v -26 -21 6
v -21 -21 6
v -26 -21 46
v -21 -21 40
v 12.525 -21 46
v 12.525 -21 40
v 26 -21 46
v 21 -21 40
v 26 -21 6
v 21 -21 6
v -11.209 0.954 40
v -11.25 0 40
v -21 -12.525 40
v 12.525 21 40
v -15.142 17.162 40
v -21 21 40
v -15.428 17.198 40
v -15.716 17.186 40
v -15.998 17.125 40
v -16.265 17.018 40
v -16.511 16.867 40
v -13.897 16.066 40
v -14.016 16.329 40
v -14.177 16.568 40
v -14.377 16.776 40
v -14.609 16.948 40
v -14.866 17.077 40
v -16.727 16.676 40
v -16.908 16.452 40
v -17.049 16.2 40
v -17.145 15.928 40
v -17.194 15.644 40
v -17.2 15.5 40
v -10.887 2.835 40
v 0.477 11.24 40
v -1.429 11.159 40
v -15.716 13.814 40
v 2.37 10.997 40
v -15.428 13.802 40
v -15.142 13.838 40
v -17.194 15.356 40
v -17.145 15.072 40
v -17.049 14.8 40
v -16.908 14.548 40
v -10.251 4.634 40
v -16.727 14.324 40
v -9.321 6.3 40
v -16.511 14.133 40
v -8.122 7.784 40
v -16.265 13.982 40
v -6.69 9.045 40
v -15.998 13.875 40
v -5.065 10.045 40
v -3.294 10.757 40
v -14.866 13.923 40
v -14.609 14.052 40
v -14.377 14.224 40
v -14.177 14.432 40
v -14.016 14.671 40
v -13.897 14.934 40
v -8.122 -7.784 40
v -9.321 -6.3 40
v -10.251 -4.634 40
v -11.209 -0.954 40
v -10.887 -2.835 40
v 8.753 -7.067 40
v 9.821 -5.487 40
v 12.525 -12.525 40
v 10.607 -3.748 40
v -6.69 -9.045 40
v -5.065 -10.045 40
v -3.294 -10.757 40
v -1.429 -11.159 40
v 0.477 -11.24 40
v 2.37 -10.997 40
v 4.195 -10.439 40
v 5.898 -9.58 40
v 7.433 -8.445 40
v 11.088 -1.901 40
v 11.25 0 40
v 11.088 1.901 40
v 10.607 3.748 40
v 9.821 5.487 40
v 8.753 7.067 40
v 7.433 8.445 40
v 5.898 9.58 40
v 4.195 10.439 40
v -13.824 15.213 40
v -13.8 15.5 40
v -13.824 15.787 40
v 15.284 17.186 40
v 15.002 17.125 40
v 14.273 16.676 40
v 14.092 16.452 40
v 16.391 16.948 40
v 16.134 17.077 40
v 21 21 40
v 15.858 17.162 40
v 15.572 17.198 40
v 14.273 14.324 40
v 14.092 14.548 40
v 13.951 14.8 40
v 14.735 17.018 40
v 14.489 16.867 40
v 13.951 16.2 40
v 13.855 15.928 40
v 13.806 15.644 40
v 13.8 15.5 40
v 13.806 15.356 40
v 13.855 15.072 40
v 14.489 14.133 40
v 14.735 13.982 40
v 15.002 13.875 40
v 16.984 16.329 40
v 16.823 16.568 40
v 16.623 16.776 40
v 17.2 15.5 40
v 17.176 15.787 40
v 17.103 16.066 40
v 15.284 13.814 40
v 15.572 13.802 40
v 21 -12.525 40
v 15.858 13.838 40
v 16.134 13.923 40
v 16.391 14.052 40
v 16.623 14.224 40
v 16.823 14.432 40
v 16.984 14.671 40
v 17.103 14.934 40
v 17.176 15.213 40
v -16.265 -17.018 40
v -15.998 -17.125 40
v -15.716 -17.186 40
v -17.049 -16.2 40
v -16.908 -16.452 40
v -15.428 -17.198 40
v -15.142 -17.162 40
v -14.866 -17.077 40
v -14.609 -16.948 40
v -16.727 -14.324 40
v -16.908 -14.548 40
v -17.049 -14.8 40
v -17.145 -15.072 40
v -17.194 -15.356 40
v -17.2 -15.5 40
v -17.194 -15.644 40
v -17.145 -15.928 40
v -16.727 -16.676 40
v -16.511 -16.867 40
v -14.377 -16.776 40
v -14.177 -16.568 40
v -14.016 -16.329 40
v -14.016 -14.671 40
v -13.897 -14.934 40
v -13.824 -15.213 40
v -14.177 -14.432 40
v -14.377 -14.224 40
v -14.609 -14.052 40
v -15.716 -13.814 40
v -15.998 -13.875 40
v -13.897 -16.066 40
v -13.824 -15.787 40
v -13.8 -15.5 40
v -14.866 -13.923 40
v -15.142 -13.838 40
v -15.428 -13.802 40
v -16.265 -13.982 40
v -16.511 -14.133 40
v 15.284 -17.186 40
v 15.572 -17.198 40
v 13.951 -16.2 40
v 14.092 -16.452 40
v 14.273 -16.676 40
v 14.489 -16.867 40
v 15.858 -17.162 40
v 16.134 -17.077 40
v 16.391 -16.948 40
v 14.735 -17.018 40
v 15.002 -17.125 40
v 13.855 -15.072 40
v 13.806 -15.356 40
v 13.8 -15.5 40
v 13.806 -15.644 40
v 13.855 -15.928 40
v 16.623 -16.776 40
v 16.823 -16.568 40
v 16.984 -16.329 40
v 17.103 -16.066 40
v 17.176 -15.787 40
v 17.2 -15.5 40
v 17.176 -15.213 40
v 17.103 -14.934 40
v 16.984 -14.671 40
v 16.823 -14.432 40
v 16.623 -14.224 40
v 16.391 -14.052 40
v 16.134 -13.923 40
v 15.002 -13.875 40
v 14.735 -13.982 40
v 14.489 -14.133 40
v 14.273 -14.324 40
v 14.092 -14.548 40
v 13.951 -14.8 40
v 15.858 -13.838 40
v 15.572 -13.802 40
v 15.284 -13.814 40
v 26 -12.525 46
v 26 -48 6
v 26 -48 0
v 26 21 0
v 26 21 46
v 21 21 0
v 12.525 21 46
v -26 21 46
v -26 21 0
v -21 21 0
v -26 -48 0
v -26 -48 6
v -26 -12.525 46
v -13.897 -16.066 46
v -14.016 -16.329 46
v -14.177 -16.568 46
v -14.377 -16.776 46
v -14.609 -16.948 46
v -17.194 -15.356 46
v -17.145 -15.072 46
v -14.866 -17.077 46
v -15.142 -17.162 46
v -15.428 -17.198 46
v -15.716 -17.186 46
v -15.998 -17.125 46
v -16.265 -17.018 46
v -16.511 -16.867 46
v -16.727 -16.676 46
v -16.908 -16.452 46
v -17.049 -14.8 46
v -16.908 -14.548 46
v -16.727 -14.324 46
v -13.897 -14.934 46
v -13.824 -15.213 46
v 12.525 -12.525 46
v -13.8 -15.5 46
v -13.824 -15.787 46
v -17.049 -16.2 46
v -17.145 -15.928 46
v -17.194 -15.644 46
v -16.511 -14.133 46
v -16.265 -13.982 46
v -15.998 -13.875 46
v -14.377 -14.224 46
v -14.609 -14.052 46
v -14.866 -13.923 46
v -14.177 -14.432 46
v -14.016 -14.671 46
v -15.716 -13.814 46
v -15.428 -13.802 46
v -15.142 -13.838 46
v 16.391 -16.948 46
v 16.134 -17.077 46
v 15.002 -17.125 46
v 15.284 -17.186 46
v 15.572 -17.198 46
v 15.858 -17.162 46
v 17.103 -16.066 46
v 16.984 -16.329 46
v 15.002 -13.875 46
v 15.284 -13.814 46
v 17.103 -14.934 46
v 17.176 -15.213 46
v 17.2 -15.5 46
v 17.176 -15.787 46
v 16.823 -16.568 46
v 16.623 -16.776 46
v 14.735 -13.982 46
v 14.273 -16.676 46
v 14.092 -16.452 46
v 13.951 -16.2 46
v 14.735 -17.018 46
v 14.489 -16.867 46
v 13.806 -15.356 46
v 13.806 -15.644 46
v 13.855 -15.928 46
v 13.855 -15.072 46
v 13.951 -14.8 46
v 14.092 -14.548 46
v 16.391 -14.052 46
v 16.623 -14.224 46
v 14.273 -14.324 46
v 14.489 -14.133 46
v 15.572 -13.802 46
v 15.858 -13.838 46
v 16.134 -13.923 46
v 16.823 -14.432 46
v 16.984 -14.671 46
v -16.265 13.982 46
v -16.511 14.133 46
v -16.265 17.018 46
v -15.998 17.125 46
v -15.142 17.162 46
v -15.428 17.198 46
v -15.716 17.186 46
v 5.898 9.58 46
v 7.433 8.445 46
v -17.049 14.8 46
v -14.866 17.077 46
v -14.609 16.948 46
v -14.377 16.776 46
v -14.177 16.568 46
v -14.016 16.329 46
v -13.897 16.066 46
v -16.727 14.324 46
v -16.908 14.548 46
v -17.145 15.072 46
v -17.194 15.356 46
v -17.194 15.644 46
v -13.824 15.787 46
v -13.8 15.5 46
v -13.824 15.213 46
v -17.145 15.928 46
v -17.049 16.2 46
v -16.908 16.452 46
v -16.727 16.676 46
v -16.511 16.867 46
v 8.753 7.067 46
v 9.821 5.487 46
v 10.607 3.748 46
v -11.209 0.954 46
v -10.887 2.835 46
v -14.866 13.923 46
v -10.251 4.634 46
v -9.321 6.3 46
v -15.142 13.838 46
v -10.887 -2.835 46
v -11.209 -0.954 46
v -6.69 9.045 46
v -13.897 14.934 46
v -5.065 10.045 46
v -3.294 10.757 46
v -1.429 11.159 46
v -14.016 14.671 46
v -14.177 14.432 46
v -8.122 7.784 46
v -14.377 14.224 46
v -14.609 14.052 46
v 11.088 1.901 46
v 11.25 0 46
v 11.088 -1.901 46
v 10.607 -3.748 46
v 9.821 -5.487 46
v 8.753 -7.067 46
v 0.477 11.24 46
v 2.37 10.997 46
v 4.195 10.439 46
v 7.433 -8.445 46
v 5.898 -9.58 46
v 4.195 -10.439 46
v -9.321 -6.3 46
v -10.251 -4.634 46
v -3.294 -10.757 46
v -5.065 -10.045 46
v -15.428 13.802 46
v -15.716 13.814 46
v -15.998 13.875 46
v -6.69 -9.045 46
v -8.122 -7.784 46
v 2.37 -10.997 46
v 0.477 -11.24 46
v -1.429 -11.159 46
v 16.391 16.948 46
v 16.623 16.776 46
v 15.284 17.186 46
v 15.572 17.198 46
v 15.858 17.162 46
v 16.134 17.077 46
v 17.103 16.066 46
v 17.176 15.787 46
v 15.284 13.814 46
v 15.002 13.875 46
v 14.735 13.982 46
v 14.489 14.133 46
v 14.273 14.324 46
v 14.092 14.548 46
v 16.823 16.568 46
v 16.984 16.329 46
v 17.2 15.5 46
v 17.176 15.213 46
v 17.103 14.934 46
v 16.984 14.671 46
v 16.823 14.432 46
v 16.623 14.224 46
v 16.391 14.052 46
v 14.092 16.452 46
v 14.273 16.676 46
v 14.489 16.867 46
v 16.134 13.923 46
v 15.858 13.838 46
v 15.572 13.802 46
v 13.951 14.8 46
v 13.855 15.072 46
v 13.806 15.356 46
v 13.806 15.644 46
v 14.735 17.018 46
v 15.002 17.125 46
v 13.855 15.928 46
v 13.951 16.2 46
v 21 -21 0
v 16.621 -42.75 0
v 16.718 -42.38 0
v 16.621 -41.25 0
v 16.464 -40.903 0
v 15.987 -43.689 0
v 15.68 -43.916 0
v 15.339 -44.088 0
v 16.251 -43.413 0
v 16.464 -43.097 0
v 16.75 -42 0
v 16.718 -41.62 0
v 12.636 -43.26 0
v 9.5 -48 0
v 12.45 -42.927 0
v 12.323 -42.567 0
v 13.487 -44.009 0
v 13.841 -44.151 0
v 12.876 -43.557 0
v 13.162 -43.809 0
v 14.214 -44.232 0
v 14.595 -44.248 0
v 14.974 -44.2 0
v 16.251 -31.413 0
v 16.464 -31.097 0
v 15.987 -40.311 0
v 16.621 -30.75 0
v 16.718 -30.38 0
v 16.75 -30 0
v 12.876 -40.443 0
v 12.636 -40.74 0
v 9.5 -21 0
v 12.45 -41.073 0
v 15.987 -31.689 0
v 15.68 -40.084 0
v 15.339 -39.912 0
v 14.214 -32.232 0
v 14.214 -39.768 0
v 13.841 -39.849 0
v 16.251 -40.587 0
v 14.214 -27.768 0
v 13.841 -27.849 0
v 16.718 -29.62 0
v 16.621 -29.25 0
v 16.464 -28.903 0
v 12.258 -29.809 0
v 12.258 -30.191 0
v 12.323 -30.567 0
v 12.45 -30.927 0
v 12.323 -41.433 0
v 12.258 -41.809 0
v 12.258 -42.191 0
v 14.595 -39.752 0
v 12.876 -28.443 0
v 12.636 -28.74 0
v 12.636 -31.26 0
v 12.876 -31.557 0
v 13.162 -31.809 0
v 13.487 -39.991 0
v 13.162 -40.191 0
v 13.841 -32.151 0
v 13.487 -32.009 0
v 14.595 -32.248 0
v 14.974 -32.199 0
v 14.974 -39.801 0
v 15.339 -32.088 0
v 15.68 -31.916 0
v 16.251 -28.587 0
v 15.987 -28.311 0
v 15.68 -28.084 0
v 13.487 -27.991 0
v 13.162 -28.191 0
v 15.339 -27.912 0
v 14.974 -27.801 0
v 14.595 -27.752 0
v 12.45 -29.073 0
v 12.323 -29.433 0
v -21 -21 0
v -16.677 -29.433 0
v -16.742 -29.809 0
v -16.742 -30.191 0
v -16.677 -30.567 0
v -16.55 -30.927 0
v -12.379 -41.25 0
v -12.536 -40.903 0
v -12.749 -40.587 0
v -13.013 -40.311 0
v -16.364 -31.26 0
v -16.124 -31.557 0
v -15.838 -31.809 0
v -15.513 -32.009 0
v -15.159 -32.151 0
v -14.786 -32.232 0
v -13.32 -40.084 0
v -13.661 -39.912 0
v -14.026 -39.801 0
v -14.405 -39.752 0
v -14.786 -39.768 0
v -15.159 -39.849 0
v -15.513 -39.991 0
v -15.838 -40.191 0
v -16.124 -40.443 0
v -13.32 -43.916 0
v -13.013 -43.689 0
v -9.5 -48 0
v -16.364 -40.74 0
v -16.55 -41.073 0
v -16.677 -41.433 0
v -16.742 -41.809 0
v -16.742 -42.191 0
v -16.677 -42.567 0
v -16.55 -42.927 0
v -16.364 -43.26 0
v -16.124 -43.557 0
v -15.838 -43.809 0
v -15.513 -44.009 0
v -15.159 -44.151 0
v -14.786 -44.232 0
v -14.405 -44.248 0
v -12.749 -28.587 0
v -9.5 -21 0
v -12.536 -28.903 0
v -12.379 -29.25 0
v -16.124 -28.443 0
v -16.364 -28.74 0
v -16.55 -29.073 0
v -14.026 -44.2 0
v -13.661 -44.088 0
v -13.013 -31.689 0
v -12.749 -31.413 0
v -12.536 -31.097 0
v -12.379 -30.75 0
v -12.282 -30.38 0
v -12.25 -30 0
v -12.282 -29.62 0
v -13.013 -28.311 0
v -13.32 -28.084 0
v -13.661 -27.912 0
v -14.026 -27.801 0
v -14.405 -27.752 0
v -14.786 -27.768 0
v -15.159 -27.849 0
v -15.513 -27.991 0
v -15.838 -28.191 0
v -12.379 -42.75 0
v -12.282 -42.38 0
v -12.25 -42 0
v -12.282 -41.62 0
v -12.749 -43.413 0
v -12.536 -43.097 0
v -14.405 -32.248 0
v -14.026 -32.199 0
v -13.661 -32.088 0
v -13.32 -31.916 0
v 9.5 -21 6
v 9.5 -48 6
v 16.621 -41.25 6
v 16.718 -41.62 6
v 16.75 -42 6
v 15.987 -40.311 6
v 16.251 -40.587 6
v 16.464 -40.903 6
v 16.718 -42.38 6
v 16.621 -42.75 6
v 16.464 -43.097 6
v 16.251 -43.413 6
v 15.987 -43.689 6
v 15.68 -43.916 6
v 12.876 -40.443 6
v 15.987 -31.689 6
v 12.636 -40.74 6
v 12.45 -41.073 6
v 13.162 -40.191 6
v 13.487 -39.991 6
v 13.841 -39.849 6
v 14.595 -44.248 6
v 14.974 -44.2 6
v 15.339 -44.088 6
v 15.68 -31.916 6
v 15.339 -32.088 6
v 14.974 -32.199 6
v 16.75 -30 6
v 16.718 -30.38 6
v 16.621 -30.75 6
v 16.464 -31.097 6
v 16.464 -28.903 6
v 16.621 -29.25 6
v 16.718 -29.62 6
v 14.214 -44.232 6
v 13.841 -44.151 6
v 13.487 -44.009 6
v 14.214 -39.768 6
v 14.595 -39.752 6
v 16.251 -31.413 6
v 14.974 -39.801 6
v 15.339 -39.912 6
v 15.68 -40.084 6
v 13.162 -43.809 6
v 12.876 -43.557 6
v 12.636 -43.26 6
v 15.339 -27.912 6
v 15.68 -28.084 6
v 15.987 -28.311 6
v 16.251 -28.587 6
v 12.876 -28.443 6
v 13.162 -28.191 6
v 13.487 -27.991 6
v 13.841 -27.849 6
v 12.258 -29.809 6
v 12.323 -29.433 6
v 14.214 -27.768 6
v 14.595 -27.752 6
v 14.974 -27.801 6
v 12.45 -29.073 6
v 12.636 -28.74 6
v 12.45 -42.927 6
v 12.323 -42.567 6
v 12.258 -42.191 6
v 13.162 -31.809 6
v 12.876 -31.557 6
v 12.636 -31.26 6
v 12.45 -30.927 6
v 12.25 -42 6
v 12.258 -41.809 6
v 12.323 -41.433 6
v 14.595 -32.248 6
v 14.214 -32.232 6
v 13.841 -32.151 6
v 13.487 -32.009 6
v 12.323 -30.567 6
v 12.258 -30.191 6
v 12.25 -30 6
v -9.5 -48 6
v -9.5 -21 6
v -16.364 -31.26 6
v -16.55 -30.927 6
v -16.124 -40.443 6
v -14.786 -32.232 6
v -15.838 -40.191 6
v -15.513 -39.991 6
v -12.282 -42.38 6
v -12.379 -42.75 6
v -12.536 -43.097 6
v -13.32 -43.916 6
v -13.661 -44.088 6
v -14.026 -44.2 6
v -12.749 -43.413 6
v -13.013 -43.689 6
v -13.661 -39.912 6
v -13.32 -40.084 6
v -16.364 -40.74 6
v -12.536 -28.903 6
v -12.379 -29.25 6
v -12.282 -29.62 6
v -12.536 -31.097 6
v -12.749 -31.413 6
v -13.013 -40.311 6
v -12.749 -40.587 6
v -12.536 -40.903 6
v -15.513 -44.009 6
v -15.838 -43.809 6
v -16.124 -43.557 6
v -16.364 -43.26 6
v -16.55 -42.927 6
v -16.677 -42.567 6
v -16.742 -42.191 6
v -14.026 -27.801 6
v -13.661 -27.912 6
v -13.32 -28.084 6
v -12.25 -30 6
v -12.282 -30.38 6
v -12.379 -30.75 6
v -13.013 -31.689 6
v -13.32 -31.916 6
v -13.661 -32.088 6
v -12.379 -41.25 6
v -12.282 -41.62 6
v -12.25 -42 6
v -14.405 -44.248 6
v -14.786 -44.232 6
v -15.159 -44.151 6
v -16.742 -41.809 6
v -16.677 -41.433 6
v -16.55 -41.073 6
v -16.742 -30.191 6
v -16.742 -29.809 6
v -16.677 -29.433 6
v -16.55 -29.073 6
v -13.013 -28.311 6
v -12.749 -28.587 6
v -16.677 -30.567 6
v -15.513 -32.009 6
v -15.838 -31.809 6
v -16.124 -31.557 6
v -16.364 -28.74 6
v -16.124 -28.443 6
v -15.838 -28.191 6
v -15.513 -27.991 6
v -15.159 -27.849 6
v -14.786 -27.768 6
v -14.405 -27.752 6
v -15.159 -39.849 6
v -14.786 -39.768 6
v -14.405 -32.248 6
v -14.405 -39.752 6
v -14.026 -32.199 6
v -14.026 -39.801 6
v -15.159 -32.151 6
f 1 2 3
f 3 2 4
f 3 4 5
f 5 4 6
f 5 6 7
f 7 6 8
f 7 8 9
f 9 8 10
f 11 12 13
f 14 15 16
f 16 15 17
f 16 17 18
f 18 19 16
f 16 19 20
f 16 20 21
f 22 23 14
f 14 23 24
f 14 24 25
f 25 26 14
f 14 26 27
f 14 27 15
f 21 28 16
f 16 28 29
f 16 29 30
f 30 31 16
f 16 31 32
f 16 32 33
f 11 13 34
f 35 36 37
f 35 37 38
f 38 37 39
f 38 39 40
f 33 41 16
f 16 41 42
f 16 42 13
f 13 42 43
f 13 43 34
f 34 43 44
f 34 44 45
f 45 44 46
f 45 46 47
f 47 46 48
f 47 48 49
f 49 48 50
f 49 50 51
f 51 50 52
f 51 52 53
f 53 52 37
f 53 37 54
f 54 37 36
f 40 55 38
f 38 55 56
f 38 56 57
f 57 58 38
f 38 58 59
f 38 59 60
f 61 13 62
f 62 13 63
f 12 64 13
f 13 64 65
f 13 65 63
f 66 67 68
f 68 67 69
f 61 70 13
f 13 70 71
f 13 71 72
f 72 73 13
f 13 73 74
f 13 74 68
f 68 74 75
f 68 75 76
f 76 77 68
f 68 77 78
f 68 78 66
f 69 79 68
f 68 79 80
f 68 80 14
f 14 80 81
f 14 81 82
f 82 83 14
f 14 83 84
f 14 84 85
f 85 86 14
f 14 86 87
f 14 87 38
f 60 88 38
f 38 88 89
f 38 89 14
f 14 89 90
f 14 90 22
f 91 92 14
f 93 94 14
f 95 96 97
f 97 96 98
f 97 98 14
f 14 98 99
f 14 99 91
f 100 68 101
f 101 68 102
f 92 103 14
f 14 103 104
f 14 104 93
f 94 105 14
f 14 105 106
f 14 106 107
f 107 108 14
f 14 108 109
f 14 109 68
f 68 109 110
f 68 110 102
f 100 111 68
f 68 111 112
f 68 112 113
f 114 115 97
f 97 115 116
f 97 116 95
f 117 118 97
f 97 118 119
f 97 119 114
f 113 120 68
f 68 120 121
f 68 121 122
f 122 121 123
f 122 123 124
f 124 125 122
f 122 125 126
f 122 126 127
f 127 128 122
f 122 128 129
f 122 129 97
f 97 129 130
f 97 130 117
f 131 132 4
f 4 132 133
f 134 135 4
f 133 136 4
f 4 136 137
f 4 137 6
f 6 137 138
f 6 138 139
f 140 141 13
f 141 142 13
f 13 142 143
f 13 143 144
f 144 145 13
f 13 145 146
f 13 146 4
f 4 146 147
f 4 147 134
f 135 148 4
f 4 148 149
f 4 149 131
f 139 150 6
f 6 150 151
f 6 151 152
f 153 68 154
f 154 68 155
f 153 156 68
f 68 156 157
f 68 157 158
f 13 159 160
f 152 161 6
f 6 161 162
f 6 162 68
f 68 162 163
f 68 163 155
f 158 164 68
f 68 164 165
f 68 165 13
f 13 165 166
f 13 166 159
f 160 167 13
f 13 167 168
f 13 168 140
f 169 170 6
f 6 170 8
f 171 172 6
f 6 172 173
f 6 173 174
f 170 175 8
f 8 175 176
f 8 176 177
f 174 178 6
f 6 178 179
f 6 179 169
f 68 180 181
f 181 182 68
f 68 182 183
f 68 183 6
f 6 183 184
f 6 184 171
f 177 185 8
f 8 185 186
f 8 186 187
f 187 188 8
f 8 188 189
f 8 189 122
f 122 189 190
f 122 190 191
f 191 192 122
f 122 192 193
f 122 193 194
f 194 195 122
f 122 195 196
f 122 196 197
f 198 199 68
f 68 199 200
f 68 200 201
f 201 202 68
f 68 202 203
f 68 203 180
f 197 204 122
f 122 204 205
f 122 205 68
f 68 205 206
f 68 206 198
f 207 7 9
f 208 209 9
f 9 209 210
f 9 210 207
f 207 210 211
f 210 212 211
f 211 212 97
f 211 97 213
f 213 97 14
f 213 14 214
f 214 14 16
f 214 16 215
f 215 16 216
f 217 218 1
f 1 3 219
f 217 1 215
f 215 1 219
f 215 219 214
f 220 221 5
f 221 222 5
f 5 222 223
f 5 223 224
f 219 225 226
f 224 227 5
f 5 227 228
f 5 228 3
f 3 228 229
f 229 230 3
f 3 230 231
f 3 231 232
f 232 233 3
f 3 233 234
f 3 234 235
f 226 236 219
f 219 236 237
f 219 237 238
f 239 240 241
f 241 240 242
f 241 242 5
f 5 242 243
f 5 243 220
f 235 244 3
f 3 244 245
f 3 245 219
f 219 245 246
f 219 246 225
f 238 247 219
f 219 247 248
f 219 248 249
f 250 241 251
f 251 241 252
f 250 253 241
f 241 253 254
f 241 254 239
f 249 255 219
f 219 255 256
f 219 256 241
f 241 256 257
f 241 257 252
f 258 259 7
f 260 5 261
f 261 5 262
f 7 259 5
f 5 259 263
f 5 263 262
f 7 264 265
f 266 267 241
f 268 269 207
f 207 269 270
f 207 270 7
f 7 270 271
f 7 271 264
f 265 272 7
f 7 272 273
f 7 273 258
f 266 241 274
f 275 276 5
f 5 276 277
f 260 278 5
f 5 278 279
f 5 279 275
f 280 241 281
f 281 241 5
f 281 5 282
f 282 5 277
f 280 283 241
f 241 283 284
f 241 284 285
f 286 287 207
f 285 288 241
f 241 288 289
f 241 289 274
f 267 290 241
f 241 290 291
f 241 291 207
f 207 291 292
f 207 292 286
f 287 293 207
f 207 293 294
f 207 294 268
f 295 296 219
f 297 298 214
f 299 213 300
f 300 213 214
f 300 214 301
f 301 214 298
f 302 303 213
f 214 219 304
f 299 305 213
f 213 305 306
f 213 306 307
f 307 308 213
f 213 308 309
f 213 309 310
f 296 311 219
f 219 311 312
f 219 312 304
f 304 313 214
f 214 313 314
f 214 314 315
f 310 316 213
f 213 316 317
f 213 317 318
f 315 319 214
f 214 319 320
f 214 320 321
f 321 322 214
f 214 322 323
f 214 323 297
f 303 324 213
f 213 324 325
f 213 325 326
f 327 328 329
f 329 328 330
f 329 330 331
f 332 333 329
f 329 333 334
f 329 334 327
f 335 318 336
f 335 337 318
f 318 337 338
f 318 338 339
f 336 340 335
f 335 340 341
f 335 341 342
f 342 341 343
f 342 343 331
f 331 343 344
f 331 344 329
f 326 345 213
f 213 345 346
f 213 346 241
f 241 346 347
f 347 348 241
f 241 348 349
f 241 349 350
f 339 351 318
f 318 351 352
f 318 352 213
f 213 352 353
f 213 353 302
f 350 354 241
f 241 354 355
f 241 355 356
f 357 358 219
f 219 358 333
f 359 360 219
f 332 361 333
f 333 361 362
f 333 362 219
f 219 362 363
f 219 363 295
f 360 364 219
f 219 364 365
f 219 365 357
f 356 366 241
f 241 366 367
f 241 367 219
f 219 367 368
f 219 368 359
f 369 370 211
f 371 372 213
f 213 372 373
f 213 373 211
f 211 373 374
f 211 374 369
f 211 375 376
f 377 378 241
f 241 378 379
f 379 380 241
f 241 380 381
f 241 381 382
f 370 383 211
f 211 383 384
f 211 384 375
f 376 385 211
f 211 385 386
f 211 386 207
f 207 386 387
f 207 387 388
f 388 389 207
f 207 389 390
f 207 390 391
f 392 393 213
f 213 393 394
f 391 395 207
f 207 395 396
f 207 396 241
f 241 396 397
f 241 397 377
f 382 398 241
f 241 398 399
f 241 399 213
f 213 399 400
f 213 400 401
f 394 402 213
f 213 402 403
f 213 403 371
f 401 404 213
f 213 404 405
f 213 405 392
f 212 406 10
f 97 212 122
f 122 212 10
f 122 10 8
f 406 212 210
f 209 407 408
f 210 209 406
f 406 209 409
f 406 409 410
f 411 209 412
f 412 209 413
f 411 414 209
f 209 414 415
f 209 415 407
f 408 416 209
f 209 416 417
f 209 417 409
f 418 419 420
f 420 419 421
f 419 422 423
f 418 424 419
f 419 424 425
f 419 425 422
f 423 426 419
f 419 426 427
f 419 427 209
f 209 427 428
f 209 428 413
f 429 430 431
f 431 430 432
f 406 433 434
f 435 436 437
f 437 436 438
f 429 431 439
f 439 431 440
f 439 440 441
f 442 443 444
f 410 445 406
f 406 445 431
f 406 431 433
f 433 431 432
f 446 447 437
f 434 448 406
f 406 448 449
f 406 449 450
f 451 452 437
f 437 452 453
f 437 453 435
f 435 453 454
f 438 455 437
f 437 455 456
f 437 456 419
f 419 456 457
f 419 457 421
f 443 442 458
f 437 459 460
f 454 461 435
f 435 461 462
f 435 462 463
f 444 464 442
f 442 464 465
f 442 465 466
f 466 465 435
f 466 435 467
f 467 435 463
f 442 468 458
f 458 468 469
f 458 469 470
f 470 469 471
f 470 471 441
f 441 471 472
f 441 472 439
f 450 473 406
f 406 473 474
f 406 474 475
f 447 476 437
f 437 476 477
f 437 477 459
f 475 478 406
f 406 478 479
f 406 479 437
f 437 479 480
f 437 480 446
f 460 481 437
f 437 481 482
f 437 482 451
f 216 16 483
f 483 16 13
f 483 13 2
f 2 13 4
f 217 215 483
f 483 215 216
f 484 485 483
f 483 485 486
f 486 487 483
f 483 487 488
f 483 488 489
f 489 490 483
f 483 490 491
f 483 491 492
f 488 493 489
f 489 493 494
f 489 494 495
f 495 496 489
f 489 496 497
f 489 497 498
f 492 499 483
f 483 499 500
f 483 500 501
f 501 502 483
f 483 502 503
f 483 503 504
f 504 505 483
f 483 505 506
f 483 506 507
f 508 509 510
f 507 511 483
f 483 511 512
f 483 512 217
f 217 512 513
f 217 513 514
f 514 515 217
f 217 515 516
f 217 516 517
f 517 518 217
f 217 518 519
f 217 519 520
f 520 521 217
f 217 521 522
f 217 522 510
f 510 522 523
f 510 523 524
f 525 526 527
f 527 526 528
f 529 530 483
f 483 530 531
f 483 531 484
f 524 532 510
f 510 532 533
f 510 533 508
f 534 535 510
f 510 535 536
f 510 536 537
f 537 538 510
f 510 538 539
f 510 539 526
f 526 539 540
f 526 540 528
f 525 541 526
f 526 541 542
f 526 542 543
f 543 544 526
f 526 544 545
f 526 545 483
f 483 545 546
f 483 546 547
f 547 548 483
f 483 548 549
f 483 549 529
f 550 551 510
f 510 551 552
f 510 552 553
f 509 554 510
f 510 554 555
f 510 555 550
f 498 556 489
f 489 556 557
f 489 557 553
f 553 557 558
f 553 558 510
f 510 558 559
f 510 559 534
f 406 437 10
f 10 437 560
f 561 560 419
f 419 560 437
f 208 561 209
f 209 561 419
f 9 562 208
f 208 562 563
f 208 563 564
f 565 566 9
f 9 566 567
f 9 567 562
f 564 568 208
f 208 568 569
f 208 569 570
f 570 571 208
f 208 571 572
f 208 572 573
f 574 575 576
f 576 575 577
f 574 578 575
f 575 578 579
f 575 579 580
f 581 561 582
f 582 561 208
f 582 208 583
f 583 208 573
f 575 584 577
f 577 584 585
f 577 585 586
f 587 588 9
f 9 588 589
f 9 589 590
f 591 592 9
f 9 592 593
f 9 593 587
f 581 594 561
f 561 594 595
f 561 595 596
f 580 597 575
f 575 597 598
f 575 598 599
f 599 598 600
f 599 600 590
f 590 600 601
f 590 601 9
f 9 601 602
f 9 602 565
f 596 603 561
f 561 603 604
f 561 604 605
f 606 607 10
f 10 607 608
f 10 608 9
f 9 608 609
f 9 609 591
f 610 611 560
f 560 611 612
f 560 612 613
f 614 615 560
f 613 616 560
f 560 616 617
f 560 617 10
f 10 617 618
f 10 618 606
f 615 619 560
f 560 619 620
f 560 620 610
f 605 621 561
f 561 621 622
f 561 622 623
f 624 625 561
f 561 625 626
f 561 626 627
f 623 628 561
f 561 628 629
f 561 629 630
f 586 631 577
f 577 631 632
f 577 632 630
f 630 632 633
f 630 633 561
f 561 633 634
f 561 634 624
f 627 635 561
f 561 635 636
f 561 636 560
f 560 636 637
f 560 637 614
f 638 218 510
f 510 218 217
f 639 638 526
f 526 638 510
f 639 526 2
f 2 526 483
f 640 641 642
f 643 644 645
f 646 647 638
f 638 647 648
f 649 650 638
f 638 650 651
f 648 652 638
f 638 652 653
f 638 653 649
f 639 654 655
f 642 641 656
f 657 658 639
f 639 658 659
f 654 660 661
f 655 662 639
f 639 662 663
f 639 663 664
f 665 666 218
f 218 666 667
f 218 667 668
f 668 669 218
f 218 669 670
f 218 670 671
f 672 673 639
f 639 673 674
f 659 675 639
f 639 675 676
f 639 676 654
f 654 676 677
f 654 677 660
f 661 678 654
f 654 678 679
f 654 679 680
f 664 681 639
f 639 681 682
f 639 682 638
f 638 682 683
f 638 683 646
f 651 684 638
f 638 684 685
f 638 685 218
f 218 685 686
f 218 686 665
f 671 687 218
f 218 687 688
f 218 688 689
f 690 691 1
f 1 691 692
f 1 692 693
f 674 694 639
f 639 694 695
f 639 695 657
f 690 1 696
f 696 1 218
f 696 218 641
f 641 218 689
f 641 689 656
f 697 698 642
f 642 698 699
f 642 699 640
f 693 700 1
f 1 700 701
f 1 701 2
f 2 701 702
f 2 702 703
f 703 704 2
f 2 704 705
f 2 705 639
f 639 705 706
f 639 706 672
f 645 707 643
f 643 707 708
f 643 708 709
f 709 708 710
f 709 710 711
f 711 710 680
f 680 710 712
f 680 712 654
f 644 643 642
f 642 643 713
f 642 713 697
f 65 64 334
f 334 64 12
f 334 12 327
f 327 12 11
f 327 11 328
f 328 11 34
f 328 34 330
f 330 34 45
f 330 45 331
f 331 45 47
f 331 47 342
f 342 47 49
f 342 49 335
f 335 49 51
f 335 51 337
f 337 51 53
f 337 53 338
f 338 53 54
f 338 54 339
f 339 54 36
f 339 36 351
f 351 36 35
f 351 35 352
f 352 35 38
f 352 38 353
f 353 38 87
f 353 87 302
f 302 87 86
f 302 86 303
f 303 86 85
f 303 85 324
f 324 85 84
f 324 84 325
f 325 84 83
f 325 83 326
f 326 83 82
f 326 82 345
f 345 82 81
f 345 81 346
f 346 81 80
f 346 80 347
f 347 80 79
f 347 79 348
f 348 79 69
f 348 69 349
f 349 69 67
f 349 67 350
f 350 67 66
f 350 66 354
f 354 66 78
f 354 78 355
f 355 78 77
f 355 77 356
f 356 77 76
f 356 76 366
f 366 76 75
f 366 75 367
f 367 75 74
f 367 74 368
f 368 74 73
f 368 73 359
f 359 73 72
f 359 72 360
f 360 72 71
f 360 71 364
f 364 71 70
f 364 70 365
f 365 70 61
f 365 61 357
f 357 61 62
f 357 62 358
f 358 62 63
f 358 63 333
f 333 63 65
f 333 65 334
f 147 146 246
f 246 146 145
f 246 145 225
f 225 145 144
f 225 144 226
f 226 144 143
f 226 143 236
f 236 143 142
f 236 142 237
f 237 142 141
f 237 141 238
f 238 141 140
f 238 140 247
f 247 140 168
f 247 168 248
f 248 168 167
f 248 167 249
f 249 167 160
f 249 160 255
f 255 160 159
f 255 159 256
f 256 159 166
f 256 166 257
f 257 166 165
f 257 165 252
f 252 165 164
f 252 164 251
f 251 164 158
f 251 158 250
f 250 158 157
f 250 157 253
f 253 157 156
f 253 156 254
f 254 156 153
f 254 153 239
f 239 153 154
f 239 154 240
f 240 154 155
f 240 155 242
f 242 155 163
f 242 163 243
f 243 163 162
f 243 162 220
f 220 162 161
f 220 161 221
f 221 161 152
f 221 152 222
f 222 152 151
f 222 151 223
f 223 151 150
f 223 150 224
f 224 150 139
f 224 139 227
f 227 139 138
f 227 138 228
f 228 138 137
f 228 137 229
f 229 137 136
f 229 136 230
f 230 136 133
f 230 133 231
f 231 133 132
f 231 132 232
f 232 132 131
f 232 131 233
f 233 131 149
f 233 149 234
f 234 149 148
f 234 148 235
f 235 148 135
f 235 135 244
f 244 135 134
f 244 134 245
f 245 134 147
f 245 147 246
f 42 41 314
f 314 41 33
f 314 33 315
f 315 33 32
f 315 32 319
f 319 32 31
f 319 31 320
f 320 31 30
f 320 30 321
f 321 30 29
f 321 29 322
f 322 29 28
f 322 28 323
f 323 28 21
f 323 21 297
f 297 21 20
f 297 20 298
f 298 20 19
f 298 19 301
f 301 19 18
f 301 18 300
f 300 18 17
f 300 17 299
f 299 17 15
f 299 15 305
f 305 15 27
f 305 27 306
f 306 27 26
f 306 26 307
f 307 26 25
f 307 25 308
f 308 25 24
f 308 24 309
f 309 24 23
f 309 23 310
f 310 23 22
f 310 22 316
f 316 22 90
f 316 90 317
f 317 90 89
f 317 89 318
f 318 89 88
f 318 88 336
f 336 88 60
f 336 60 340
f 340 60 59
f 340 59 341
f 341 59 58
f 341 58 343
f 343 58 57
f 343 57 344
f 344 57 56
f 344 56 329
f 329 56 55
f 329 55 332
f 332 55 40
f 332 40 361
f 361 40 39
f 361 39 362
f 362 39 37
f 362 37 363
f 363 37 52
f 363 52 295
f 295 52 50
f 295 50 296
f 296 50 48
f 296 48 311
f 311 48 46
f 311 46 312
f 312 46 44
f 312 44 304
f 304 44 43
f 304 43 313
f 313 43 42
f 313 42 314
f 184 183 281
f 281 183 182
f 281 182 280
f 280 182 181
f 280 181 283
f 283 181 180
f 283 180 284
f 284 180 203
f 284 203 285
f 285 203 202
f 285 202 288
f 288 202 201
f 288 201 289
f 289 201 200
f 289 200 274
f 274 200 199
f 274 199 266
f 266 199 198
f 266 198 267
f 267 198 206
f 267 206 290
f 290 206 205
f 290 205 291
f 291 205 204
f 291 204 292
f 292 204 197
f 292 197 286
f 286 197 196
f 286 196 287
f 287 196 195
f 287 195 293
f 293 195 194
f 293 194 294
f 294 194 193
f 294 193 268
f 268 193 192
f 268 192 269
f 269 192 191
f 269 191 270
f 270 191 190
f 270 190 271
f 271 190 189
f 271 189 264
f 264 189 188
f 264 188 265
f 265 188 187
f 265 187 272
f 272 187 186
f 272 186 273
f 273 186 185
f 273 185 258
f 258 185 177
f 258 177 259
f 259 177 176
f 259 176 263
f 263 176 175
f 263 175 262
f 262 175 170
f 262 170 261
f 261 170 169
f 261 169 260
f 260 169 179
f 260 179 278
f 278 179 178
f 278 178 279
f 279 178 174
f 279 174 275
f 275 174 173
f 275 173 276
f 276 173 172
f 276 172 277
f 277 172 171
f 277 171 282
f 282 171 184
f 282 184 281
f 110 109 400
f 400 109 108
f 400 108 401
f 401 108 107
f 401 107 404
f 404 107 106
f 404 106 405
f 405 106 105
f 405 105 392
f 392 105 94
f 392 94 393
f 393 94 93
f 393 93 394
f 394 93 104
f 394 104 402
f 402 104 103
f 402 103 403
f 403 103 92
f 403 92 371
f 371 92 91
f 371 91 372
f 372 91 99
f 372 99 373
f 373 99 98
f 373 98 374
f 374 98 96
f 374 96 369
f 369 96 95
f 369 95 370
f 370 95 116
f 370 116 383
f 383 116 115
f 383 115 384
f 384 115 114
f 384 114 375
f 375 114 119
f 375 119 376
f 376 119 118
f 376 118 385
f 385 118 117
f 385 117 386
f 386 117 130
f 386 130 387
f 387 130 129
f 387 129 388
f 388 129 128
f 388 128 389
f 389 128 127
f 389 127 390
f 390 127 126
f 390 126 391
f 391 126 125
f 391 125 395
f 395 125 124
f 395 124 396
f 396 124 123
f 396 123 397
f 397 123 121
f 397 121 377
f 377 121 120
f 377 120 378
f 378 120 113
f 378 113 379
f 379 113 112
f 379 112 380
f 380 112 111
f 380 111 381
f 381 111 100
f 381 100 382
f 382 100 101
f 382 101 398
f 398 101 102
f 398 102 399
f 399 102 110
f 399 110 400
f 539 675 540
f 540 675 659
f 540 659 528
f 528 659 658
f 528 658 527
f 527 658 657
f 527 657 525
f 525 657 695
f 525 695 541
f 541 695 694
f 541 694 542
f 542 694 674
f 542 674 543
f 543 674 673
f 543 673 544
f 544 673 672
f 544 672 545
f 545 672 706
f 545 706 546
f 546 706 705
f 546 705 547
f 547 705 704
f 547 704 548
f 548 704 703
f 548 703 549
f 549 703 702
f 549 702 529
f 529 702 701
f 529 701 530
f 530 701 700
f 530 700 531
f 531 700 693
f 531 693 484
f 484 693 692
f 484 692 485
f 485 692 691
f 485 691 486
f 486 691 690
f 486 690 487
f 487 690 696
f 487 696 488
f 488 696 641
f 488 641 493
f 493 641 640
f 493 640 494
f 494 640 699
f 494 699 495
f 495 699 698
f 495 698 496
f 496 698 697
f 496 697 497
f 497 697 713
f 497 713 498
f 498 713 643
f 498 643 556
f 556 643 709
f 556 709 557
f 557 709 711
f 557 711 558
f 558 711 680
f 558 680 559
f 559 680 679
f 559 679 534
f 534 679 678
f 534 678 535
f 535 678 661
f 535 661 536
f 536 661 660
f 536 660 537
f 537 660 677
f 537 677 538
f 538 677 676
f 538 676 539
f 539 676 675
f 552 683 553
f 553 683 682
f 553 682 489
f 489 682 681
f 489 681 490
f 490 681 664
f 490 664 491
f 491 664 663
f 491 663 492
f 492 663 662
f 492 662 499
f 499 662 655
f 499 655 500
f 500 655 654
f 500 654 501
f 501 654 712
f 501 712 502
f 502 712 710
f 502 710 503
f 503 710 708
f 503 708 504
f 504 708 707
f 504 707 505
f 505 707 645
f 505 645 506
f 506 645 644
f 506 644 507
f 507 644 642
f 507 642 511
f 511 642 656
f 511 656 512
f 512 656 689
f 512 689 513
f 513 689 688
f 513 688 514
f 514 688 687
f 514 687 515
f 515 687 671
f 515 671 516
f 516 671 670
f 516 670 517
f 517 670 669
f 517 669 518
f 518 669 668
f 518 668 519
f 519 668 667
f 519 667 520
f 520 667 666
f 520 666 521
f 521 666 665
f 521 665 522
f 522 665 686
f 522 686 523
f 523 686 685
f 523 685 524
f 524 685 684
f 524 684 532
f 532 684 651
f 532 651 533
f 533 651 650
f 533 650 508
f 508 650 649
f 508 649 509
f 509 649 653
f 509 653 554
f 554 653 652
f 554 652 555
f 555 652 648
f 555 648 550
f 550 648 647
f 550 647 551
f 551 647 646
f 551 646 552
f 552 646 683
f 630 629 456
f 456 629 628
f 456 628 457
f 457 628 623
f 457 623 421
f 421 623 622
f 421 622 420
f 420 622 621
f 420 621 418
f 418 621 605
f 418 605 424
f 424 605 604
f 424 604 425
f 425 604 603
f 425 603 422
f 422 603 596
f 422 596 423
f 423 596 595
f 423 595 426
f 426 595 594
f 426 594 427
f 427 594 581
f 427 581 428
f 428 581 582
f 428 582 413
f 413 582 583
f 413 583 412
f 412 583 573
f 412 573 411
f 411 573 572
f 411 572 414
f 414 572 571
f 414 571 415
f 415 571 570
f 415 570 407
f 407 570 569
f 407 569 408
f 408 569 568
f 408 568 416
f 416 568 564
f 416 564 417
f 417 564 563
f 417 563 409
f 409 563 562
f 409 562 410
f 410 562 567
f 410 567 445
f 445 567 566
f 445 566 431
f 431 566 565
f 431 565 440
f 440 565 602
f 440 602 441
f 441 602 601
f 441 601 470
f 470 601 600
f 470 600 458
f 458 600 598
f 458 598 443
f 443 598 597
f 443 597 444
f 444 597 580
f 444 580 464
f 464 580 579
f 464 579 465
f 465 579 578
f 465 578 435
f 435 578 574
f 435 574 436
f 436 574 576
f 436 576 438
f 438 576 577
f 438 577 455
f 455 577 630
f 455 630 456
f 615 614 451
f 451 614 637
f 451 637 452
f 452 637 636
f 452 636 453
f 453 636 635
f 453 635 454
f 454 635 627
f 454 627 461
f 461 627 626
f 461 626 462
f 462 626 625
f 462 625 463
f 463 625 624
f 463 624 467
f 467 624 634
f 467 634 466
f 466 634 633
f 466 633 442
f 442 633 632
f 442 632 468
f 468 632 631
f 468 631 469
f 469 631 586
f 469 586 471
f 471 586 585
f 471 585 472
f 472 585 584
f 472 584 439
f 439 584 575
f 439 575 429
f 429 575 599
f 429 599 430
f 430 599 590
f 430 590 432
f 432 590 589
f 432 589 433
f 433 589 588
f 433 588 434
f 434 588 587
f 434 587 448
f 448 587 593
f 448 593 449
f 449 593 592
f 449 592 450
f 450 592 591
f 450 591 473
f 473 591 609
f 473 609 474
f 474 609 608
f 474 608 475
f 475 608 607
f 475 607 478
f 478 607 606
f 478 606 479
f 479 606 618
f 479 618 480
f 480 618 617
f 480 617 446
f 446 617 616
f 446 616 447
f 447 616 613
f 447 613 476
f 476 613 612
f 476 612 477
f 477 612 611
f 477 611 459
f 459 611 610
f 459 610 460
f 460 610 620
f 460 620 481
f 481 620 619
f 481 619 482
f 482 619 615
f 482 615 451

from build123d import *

# Parameters (mm, degrees)
EXTRUDE_START               = 40
SKETCH_1013_W               = 52
SKETCH_1013_H               = 42
EXTRUDE_1127_DEPTH          = 6
SKETCH_1179_W               = 5
SKETCH_1179_H               = 42
EXTRUDE_1393_DEPTH          = 40
SKETCH_1445_W               = 16.5
SKETCH_1445_H               = 27
EXTRUDE_1760_DEPTH          = 6
CUT_EXTRUDE_1818_DEPTH      = 72.38627319
CUT_EXTRUDE_1818_DEPTH_BACK = 72.38627319
SKETCH_1809_R               = 11.25
SKETCH_1809_R_2             = 1.7
CUT_EXTRUDE_1864_DEPTH      = 72.38627319
CUT_EXTRUDE_1864_DEPTH_BACK = 72.38627319
SKETCH_1856_R               = 2.25


with BuildPart() as part:
    # Sketch 1013 → Extrude 1127 (new body)
    with BuildSketch(Plane.XY.offset(EXTRUDE_START)):
        Rectangle(SKETCH_1013_W, SKETCH_1013_H)
    extrude(amount=EXTRUDE_1127_DEPTH)

    # Sketch 1179 → Extrude 1393 (add)
    with BuildSketch(Plane.XY):
        with Locations((-23.5, 0)):
            Rectangle(SKETCH_1179_W, SKETCH_1179_H)
        with Locations((23.5, 0)):
            Rectangle(SKETCH_1179_W, SKETCH_1179_H)
    extrude(amount=EXTRUDE_1393_DEPTH)

    # Sketch 1445 → Extrude 1760 (add)
    with BuildSketch(Plane.XY):
        with Locations((-17.75, -34.5)):
            Rectangle(SKETCH_1445_W, SKETCH_1445_H)
        with Locations((17.75, -34.5)):
            Rectangle(SKETCH_1445_W, SKETCH_1445_H)
    extrude(amount=EXTRUDE_1760_DEPTH)

    # Sketch 1809 → Cut-Extrude 1818 (cut, two sides: drawn at the far end of the back side and taken through both)
    with BuildSketch(Plane.XY.offset(-CUT_EXTRUDE_1818_DEPTH_BACK)):
        Circle(SKETCH_1809_R)
        with Locations((-15.5, -15.5)):
            Circle(SKETCH_1809_R_2)
        with Locations((-15.5, 15.5)):
            Circle(SKETCH_1809_R_2)
        with Locations((15.5, -15.5)):
            Circle(SKETCH_1809_R_2)
        with Locations((15.5, 15.5)):
            Circle(SKETCH_1809_R_2)
    extrude(amount=CUT_EXTRUDE_1818_DEPTH + CUT_EXTRUDE_1818_DEPTH_BACK, mode=Mode.SUBTRACT)

    # Sketch 1856 → Cut-Extrude 1864 (cut, two sides: drawn at the far end of the back side and taken through both)
    with BuildSketch(Plane.XY.offset(-CUT_EXTRUDE_1864_DEPTH_BACK)):
        with Locations((-14.5, -30)):
            Circle(SKETCH_1856_R)
        with Locations((-14.5, -42)):
            Circle(SKETCH_1856_R)
        with Locations((14.5, -30)):
            Circle(SKETCH_1856_R)
        with Locations((14.5, -42)):
            Circle(SKETCH_1856_R)
    extrude(amount=CUT_EXTRUDE_1864_DEPTH + CUT_EXTRUDE_1864_DEPTH_BACK, mode=Mode.SUBTRACT)


solid = part.part
